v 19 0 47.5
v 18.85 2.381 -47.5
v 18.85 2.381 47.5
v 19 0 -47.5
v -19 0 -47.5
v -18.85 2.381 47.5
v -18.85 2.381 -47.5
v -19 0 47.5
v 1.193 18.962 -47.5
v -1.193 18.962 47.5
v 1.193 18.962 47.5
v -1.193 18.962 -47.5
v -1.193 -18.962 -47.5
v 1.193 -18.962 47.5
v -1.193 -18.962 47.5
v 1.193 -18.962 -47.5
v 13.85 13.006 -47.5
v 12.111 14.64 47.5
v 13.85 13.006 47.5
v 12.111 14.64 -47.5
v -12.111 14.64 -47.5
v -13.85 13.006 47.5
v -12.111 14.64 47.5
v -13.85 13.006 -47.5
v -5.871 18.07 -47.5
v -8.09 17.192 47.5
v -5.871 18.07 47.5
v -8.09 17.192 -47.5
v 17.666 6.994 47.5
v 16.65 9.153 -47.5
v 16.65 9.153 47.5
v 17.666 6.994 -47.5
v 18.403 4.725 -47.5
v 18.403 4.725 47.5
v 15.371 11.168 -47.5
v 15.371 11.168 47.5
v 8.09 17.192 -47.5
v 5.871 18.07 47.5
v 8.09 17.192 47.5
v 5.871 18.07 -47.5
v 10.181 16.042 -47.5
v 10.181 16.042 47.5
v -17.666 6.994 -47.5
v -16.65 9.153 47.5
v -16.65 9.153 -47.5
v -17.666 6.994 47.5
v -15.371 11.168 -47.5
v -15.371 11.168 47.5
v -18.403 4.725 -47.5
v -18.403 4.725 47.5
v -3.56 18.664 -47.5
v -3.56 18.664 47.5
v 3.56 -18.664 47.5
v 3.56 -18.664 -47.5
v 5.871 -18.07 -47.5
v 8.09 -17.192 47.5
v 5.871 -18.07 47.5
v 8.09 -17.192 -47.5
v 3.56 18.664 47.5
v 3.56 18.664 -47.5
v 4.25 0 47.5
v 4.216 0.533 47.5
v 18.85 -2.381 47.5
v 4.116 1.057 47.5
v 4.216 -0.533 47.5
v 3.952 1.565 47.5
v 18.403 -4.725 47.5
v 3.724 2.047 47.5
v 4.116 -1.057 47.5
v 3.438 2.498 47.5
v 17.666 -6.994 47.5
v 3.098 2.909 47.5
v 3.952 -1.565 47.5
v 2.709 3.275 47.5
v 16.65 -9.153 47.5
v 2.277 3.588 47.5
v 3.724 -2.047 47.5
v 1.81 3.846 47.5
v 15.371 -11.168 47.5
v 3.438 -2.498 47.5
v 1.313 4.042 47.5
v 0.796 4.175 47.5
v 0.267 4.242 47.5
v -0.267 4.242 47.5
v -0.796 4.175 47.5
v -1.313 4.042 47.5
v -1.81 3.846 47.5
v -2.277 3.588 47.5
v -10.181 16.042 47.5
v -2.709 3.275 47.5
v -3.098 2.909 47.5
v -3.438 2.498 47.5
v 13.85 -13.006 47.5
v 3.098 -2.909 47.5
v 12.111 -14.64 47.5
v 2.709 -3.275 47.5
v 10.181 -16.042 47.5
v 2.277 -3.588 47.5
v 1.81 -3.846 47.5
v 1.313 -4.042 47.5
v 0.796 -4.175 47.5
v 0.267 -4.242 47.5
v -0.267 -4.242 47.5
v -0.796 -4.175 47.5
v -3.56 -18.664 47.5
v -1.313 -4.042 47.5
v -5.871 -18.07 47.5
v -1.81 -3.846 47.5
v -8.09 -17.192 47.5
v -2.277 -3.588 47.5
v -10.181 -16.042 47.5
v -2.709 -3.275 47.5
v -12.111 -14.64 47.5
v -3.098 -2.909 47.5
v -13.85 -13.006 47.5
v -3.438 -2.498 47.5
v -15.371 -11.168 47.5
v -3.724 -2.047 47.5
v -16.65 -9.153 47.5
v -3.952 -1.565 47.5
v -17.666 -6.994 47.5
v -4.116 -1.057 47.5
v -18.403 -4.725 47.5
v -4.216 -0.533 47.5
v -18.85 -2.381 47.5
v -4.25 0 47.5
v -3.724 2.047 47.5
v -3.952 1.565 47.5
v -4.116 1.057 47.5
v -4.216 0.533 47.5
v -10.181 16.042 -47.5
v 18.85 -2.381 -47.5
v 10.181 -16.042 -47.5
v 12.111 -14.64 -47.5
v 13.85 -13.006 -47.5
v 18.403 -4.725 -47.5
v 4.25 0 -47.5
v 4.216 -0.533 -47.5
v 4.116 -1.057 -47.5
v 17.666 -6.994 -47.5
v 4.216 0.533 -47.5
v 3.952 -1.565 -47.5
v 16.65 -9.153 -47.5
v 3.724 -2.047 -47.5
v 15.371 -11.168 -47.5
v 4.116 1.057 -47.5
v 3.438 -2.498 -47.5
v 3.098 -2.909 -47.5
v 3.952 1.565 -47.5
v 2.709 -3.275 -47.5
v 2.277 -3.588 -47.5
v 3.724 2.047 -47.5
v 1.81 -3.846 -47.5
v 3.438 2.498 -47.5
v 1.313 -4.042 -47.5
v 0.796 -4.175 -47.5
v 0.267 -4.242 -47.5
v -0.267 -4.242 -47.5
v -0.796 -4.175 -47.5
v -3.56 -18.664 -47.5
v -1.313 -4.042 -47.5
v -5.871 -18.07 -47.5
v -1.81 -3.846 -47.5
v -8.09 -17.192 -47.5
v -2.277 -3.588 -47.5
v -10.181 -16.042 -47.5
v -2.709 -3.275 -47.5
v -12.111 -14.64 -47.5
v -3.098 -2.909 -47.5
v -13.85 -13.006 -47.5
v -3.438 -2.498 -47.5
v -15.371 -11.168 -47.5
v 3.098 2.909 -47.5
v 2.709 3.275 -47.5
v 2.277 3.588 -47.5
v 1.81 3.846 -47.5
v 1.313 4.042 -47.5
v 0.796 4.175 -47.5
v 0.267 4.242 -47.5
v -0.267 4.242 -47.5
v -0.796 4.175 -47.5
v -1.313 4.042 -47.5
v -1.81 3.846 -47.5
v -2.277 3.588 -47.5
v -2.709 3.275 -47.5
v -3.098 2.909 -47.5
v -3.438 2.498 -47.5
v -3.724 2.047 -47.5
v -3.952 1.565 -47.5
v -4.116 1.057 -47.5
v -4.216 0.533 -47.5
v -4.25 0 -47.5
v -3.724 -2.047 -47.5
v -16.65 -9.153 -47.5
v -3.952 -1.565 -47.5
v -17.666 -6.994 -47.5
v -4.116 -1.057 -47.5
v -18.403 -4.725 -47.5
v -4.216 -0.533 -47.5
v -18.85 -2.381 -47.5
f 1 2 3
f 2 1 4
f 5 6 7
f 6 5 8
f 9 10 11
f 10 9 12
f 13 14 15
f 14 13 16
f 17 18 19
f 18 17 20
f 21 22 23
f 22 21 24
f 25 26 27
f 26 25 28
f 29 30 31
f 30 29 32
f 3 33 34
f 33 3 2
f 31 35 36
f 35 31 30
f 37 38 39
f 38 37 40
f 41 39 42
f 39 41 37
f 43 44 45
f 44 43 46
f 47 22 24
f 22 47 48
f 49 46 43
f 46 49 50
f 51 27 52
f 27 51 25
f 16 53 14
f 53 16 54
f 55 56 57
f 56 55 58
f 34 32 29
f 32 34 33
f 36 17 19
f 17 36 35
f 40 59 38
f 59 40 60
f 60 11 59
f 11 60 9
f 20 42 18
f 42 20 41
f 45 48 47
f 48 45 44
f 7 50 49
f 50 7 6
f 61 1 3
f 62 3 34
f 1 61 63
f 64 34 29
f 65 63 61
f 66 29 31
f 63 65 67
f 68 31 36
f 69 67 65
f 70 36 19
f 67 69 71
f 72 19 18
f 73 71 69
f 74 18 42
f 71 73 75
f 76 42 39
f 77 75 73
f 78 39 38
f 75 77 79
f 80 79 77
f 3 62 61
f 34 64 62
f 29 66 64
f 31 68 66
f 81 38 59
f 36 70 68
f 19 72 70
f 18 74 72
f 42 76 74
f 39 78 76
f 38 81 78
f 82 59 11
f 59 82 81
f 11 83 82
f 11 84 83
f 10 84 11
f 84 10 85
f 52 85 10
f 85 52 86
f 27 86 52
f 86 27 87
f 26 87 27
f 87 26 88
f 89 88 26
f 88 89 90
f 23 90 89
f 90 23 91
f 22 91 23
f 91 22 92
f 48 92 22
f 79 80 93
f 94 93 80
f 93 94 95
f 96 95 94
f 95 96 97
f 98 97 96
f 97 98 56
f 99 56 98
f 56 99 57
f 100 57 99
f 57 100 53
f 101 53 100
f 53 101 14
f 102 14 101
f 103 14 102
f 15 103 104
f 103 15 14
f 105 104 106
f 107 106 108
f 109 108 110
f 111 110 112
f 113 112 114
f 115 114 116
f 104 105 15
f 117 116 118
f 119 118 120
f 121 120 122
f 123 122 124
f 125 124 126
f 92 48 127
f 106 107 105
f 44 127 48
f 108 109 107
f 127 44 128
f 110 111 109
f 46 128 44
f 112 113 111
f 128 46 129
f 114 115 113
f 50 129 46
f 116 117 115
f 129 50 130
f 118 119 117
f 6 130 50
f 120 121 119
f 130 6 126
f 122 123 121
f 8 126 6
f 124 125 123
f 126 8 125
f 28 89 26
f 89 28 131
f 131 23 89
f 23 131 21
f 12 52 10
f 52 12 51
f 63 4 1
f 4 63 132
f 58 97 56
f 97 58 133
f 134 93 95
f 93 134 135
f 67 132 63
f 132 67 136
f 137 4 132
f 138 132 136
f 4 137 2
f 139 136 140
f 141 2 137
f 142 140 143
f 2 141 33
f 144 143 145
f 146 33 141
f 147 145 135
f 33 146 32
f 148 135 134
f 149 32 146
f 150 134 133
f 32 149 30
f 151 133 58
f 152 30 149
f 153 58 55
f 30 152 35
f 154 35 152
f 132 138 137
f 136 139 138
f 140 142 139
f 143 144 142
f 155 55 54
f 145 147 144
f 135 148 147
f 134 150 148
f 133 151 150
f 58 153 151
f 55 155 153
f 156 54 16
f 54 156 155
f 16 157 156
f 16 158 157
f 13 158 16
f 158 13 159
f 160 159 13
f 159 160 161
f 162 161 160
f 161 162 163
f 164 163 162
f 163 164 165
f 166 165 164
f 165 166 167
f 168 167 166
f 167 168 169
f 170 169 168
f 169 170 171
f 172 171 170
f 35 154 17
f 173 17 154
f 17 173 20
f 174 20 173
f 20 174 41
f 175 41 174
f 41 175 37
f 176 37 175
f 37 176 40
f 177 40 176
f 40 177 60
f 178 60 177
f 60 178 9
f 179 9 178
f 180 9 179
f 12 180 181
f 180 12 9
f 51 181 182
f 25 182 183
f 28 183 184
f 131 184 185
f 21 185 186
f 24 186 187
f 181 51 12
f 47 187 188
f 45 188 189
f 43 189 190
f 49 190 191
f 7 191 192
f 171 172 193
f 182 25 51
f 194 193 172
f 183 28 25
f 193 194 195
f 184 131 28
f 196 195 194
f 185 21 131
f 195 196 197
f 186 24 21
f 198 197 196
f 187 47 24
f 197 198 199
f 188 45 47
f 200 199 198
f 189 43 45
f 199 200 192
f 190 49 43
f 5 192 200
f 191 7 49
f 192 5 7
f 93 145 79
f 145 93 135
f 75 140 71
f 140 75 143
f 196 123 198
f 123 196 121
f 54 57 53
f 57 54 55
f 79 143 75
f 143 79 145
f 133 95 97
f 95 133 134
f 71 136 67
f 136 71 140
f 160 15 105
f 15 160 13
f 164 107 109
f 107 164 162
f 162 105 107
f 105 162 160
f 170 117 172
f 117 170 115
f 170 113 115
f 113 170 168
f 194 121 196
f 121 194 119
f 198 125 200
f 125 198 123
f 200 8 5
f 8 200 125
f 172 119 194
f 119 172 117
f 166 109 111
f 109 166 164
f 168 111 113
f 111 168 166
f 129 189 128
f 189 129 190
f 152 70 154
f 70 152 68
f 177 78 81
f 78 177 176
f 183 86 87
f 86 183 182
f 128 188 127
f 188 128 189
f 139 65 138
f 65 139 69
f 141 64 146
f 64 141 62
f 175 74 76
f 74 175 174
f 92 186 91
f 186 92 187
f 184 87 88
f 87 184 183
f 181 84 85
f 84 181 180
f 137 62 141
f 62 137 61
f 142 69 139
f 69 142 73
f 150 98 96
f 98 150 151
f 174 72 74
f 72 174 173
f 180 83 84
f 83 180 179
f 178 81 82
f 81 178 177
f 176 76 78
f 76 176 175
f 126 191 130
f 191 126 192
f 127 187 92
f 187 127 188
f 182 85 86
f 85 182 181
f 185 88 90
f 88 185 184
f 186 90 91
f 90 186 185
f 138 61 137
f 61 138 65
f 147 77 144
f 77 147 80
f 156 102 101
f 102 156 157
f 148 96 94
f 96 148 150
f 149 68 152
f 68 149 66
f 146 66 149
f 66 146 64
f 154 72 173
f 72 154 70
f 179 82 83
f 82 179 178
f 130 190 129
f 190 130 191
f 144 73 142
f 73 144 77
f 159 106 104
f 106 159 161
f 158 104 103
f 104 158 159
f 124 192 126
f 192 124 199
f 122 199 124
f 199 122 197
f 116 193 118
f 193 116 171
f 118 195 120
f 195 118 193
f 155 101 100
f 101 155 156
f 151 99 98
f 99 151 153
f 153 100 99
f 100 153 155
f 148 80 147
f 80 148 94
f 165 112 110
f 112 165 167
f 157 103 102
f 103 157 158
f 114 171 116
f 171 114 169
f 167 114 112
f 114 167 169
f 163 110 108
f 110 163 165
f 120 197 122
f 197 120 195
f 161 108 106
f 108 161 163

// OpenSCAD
$fn = 50;


difference() {
	union() {
		translate(v = [0, 0, -47.5000000000]) {
			cylinder(h = 95, r = 19.0000000000);
		}
	}
	union() {
		translate(v = [0, 0, -100.0000000000]) {
			cylinder(h = 200, r = 4.2500000000);
		}
	}
}
